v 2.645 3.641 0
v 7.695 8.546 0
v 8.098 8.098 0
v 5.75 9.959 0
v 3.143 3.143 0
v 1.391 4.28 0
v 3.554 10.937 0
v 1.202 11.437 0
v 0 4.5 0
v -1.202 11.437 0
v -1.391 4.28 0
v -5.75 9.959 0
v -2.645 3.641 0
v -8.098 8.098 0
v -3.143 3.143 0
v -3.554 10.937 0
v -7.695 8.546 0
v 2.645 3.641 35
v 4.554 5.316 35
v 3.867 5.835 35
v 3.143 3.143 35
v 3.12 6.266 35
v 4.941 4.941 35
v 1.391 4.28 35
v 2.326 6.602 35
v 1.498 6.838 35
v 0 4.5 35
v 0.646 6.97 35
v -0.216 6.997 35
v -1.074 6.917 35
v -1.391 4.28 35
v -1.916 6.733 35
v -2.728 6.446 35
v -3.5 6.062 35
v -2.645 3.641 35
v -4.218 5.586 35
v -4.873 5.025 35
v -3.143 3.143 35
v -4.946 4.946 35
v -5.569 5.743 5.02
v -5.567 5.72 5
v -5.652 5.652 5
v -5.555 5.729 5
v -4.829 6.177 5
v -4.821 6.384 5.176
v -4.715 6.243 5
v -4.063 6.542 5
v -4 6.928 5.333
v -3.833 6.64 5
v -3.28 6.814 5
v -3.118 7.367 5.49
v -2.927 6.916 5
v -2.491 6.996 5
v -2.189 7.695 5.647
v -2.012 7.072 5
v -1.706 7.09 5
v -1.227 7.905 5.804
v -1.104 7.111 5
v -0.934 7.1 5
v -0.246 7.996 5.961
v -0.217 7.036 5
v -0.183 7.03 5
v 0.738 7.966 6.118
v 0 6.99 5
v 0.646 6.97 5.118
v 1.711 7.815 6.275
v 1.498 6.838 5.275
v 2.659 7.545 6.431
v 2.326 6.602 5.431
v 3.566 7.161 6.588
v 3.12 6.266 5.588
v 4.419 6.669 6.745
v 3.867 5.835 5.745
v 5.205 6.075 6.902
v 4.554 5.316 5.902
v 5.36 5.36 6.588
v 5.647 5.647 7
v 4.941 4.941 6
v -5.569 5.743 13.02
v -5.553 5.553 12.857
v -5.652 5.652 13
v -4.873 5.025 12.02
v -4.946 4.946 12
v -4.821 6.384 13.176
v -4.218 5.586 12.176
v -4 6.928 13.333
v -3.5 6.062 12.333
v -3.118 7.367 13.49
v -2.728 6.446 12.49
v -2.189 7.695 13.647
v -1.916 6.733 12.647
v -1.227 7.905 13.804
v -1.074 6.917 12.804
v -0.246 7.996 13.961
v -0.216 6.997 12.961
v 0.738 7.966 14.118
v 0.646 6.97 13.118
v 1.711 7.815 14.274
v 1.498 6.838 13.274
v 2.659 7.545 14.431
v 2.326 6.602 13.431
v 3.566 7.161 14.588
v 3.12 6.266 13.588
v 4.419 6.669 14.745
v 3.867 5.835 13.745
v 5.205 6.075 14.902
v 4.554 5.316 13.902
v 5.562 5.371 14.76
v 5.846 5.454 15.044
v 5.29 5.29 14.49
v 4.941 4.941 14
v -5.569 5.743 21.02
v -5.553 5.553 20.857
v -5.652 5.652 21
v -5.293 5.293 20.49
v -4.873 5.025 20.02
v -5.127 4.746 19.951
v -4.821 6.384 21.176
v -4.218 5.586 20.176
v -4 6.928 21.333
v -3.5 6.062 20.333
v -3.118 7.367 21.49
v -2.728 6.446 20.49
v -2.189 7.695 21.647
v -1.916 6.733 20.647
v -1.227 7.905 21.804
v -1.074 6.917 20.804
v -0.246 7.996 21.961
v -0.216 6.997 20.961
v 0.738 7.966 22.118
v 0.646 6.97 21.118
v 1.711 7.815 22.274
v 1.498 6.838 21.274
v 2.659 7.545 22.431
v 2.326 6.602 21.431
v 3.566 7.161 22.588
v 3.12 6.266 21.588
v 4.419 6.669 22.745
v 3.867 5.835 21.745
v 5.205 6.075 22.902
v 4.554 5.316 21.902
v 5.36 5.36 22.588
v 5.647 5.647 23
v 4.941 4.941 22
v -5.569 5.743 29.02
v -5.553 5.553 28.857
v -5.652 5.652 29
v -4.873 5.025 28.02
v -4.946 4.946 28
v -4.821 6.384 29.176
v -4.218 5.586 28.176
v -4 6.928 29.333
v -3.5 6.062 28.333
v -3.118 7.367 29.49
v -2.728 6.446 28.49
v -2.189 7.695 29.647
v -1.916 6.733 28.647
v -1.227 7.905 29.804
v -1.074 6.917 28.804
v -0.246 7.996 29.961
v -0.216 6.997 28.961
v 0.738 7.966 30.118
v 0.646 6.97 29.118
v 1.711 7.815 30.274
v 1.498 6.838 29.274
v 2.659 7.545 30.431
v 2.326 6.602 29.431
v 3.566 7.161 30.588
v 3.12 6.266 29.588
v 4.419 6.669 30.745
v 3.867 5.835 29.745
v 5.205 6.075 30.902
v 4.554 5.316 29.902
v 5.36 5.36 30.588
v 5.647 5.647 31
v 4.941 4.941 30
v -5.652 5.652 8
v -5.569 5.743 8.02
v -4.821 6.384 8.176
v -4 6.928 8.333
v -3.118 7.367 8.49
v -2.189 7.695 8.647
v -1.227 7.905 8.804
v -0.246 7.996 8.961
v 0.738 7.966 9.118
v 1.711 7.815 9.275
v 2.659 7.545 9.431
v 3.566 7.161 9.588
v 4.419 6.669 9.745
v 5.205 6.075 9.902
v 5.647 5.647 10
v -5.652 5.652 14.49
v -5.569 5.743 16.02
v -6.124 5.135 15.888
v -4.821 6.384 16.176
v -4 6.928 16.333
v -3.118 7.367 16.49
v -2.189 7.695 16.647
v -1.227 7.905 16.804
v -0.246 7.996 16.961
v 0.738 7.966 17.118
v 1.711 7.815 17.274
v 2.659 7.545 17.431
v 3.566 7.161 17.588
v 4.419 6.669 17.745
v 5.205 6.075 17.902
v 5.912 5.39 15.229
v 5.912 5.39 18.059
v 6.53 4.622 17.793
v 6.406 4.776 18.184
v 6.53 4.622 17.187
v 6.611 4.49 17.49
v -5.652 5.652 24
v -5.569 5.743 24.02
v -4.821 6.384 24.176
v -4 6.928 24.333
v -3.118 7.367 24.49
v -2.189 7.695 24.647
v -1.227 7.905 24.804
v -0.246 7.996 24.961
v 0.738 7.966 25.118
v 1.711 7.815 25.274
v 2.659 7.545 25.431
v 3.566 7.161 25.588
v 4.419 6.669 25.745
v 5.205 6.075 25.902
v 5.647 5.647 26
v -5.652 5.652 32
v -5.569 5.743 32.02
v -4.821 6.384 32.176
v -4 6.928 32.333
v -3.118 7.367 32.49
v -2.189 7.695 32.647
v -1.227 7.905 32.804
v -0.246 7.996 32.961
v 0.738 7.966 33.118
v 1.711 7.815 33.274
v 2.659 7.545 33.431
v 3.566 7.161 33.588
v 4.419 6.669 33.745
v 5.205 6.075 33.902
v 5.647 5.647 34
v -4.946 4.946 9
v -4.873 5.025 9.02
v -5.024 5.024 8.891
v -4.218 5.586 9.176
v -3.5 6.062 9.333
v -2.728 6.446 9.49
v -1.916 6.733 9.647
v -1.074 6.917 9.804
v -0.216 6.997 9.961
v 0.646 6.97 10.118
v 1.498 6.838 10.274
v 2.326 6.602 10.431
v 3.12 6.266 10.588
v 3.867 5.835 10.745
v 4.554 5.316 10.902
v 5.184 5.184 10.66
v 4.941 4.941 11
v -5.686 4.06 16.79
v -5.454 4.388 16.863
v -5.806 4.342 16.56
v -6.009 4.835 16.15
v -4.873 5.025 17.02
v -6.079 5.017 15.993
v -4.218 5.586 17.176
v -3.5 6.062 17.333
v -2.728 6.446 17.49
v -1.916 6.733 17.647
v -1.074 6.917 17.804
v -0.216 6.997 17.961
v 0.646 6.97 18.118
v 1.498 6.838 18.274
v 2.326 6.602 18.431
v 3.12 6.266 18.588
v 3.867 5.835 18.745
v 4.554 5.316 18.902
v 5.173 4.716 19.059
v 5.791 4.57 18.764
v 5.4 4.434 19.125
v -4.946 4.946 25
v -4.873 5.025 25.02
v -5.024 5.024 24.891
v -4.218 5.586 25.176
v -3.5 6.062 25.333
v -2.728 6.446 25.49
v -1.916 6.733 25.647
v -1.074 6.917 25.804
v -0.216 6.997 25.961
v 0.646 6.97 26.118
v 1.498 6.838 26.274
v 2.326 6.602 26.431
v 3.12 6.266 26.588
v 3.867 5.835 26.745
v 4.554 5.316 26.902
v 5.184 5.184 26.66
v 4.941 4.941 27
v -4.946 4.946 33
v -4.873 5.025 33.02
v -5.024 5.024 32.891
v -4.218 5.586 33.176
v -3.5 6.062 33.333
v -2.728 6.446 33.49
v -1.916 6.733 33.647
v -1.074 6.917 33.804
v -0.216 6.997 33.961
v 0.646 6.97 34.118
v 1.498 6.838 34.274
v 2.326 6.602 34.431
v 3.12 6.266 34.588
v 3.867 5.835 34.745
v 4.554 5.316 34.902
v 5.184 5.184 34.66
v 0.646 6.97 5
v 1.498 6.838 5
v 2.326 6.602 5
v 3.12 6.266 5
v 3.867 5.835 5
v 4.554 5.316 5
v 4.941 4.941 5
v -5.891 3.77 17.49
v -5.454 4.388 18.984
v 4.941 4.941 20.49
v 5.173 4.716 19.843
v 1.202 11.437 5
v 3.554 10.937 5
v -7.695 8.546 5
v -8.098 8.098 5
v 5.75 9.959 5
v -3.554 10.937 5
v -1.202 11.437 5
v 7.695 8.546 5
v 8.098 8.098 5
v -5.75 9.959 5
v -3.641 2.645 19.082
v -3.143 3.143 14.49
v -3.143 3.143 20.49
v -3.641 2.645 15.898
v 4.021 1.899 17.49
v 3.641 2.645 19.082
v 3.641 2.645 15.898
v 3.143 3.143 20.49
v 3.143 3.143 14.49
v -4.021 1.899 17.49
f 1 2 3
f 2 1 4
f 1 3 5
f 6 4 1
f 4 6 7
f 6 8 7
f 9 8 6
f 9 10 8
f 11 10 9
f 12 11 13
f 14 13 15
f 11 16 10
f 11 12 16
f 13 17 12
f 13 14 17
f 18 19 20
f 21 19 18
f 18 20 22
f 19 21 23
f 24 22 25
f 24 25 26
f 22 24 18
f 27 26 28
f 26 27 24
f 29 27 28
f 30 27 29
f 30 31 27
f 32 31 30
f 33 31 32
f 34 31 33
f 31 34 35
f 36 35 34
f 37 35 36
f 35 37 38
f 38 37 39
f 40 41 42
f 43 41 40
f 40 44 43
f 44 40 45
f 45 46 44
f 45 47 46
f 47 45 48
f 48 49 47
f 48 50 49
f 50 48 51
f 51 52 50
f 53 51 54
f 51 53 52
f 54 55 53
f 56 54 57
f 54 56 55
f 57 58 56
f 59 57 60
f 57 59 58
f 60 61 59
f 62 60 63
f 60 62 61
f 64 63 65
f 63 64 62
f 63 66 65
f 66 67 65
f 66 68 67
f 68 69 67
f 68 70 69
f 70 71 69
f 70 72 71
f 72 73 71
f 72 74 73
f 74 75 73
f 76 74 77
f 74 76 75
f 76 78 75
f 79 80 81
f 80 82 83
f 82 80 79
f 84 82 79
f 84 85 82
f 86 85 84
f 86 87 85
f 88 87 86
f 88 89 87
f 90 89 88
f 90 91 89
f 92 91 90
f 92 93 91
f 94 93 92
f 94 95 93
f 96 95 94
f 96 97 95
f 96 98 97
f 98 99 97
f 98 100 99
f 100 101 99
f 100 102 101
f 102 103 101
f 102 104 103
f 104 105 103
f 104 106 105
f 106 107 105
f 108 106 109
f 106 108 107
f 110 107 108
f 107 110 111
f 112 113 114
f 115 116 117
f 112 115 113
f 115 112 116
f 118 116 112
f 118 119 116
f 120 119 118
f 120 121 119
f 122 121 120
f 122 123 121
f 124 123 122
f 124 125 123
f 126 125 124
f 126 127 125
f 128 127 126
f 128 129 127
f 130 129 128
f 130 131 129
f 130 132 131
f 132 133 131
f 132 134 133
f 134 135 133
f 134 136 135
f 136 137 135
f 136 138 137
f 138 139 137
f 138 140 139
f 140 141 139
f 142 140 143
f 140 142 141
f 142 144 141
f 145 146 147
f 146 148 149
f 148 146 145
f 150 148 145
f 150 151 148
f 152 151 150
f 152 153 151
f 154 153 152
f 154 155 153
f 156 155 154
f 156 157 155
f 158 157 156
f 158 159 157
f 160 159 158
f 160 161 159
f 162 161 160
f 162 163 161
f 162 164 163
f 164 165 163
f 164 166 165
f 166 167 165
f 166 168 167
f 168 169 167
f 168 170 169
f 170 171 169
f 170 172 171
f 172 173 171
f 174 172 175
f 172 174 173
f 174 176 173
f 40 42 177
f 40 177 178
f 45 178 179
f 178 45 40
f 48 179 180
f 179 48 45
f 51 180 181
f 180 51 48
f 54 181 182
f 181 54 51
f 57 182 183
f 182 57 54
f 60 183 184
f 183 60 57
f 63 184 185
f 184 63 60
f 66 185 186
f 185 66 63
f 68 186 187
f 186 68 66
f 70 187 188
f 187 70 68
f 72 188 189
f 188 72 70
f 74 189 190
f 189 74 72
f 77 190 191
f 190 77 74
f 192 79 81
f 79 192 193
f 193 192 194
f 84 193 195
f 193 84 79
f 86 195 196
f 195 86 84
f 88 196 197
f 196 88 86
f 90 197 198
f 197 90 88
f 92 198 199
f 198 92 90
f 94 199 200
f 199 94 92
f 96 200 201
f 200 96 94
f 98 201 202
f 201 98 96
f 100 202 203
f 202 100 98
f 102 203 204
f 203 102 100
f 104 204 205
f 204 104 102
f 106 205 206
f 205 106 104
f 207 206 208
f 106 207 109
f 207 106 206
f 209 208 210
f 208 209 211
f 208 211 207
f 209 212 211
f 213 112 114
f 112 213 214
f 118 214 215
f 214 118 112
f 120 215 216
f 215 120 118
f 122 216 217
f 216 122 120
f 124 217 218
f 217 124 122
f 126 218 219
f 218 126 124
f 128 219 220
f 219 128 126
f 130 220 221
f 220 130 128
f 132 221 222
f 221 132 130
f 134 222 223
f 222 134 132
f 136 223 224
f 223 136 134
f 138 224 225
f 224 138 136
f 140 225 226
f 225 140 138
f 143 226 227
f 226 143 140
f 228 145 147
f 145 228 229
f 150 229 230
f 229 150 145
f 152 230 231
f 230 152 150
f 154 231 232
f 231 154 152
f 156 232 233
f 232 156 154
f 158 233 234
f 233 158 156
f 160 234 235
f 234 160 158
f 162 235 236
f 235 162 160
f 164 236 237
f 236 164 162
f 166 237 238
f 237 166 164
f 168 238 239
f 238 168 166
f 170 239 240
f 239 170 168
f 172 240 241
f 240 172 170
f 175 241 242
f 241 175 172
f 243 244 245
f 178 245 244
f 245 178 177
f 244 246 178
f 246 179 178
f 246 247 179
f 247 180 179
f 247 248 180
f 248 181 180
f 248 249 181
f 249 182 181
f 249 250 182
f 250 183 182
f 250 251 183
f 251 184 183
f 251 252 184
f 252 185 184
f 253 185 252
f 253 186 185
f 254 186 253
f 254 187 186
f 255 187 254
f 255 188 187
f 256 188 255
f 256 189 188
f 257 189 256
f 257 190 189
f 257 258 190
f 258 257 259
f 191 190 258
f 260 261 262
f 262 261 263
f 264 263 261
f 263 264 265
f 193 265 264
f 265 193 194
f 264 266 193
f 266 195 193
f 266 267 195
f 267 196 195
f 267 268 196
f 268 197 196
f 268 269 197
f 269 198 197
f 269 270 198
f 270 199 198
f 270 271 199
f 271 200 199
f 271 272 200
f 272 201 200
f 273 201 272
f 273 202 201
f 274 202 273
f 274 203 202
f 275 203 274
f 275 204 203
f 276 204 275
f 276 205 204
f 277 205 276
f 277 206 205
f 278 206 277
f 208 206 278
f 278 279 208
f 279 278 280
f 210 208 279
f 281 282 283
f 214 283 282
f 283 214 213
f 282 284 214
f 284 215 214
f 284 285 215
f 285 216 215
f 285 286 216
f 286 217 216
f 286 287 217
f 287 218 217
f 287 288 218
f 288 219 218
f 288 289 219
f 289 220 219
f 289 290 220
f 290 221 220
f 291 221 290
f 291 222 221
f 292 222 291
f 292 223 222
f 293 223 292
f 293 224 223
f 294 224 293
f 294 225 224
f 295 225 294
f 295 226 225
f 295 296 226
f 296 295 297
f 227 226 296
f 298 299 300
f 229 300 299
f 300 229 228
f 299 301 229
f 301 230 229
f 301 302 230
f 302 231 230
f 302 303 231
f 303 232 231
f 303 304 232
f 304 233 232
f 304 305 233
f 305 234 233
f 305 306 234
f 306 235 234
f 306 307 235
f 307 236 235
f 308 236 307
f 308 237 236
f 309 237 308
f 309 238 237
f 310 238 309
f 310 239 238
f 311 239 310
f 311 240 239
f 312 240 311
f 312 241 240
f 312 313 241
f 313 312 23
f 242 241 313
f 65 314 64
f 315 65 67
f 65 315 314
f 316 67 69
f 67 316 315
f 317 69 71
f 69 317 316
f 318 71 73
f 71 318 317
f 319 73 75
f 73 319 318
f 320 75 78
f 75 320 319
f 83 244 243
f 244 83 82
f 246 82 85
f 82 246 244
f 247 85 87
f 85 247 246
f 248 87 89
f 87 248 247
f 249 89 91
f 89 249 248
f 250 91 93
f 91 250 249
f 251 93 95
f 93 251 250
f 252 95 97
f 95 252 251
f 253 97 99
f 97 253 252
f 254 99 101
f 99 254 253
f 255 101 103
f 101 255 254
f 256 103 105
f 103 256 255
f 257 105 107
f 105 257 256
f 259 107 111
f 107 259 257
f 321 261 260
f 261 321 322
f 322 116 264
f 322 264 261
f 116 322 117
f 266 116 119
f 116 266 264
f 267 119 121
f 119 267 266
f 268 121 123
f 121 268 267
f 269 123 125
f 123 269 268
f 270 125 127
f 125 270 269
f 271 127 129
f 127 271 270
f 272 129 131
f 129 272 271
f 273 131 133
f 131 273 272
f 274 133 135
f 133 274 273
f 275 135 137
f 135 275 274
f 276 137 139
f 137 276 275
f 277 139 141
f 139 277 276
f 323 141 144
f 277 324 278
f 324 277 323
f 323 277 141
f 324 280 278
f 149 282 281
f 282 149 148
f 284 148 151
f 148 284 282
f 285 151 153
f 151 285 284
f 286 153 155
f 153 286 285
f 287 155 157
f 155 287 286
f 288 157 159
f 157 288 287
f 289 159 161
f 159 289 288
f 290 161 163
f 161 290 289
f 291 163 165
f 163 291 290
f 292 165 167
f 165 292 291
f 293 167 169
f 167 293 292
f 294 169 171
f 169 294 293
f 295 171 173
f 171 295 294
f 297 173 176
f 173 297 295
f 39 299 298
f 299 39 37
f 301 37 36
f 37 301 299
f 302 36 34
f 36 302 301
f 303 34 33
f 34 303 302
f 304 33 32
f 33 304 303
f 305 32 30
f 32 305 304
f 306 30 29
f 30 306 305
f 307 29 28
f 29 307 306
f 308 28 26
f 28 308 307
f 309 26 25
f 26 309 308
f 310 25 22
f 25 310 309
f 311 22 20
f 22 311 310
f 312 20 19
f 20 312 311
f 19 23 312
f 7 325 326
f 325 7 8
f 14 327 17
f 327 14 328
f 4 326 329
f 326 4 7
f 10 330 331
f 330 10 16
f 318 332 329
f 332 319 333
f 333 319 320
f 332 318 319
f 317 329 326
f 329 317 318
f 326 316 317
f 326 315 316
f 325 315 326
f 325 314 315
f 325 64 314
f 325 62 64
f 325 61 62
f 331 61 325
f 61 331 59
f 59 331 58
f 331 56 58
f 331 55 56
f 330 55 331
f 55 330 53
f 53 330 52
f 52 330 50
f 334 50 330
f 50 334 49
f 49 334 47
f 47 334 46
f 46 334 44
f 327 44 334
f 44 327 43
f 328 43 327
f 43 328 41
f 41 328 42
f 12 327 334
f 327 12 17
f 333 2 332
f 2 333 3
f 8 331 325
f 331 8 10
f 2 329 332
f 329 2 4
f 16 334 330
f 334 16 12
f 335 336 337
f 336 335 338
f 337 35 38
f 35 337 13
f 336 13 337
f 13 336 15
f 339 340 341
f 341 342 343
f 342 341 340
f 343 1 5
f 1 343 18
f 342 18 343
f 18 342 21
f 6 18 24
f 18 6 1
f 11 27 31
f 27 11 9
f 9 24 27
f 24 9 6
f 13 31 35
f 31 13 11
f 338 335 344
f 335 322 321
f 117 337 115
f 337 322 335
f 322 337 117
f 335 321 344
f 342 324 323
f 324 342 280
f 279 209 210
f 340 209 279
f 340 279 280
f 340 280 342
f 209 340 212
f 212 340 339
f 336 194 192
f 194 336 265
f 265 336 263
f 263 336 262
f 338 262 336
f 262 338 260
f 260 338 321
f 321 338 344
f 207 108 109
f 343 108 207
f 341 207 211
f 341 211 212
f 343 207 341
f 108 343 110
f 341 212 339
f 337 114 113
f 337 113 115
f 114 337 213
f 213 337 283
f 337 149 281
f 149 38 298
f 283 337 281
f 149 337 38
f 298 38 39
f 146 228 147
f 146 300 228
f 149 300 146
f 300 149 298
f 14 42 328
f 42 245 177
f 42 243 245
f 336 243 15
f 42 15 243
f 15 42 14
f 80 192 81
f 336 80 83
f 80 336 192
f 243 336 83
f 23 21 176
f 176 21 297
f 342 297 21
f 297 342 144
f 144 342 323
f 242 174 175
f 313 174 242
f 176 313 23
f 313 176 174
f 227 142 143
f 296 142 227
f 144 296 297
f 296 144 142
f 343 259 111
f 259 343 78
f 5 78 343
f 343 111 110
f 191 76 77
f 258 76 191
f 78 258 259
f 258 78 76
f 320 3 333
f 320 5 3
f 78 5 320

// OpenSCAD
// Copyright (c) 2026 Chris Lee and contributors.
// Licensed under the MIT license. See LICENSE file in the project root for details.

include <plug.scad>

plug_right();
